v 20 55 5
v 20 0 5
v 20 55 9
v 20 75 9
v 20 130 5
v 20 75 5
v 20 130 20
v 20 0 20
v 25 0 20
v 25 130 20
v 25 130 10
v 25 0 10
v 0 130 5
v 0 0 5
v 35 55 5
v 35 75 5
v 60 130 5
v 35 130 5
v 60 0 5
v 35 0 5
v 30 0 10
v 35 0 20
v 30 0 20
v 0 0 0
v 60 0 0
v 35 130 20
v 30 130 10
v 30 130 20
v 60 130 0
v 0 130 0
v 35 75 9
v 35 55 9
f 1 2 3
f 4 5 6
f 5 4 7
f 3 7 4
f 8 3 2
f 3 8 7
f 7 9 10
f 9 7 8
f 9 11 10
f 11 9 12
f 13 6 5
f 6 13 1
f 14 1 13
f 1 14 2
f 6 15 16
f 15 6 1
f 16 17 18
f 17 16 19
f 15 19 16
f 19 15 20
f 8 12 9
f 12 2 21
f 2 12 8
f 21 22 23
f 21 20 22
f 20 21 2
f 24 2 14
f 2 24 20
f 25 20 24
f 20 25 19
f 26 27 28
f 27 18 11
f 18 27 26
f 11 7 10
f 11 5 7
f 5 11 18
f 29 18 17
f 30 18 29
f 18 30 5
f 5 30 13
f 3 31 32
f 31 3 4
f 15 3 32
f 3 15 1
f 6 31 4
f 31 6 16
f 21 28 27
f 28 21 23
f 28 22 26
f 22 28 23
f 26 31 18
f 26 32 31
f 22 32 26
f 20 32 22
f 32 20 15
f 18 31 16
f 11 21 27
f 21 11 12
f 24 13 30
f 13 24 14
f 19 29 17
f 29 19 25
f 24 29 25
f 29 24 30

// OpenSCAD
color("green")
cube([60,130,5]);
difference(){
  translate([20,0, 5]){
      color("blue")
      cube([5,130,15]);
   }
   translate([18,55,5]){
       color("red")
       cube([20,20,4]);  
    } 
    }
    difference(){
        translate([30,0, 5]){
          color("blue")
          cube([5,130,15]);
        }
        translate([18,55,5]){
   color("red")
   cube([20,20,4]);  
}
    }
difference(){
    translate([25,0,5]){
      cube([5,130,5]);
    }
    translate([18,55,5]){
   color("red")
   cube([20,20,4]);  
}
}


    
